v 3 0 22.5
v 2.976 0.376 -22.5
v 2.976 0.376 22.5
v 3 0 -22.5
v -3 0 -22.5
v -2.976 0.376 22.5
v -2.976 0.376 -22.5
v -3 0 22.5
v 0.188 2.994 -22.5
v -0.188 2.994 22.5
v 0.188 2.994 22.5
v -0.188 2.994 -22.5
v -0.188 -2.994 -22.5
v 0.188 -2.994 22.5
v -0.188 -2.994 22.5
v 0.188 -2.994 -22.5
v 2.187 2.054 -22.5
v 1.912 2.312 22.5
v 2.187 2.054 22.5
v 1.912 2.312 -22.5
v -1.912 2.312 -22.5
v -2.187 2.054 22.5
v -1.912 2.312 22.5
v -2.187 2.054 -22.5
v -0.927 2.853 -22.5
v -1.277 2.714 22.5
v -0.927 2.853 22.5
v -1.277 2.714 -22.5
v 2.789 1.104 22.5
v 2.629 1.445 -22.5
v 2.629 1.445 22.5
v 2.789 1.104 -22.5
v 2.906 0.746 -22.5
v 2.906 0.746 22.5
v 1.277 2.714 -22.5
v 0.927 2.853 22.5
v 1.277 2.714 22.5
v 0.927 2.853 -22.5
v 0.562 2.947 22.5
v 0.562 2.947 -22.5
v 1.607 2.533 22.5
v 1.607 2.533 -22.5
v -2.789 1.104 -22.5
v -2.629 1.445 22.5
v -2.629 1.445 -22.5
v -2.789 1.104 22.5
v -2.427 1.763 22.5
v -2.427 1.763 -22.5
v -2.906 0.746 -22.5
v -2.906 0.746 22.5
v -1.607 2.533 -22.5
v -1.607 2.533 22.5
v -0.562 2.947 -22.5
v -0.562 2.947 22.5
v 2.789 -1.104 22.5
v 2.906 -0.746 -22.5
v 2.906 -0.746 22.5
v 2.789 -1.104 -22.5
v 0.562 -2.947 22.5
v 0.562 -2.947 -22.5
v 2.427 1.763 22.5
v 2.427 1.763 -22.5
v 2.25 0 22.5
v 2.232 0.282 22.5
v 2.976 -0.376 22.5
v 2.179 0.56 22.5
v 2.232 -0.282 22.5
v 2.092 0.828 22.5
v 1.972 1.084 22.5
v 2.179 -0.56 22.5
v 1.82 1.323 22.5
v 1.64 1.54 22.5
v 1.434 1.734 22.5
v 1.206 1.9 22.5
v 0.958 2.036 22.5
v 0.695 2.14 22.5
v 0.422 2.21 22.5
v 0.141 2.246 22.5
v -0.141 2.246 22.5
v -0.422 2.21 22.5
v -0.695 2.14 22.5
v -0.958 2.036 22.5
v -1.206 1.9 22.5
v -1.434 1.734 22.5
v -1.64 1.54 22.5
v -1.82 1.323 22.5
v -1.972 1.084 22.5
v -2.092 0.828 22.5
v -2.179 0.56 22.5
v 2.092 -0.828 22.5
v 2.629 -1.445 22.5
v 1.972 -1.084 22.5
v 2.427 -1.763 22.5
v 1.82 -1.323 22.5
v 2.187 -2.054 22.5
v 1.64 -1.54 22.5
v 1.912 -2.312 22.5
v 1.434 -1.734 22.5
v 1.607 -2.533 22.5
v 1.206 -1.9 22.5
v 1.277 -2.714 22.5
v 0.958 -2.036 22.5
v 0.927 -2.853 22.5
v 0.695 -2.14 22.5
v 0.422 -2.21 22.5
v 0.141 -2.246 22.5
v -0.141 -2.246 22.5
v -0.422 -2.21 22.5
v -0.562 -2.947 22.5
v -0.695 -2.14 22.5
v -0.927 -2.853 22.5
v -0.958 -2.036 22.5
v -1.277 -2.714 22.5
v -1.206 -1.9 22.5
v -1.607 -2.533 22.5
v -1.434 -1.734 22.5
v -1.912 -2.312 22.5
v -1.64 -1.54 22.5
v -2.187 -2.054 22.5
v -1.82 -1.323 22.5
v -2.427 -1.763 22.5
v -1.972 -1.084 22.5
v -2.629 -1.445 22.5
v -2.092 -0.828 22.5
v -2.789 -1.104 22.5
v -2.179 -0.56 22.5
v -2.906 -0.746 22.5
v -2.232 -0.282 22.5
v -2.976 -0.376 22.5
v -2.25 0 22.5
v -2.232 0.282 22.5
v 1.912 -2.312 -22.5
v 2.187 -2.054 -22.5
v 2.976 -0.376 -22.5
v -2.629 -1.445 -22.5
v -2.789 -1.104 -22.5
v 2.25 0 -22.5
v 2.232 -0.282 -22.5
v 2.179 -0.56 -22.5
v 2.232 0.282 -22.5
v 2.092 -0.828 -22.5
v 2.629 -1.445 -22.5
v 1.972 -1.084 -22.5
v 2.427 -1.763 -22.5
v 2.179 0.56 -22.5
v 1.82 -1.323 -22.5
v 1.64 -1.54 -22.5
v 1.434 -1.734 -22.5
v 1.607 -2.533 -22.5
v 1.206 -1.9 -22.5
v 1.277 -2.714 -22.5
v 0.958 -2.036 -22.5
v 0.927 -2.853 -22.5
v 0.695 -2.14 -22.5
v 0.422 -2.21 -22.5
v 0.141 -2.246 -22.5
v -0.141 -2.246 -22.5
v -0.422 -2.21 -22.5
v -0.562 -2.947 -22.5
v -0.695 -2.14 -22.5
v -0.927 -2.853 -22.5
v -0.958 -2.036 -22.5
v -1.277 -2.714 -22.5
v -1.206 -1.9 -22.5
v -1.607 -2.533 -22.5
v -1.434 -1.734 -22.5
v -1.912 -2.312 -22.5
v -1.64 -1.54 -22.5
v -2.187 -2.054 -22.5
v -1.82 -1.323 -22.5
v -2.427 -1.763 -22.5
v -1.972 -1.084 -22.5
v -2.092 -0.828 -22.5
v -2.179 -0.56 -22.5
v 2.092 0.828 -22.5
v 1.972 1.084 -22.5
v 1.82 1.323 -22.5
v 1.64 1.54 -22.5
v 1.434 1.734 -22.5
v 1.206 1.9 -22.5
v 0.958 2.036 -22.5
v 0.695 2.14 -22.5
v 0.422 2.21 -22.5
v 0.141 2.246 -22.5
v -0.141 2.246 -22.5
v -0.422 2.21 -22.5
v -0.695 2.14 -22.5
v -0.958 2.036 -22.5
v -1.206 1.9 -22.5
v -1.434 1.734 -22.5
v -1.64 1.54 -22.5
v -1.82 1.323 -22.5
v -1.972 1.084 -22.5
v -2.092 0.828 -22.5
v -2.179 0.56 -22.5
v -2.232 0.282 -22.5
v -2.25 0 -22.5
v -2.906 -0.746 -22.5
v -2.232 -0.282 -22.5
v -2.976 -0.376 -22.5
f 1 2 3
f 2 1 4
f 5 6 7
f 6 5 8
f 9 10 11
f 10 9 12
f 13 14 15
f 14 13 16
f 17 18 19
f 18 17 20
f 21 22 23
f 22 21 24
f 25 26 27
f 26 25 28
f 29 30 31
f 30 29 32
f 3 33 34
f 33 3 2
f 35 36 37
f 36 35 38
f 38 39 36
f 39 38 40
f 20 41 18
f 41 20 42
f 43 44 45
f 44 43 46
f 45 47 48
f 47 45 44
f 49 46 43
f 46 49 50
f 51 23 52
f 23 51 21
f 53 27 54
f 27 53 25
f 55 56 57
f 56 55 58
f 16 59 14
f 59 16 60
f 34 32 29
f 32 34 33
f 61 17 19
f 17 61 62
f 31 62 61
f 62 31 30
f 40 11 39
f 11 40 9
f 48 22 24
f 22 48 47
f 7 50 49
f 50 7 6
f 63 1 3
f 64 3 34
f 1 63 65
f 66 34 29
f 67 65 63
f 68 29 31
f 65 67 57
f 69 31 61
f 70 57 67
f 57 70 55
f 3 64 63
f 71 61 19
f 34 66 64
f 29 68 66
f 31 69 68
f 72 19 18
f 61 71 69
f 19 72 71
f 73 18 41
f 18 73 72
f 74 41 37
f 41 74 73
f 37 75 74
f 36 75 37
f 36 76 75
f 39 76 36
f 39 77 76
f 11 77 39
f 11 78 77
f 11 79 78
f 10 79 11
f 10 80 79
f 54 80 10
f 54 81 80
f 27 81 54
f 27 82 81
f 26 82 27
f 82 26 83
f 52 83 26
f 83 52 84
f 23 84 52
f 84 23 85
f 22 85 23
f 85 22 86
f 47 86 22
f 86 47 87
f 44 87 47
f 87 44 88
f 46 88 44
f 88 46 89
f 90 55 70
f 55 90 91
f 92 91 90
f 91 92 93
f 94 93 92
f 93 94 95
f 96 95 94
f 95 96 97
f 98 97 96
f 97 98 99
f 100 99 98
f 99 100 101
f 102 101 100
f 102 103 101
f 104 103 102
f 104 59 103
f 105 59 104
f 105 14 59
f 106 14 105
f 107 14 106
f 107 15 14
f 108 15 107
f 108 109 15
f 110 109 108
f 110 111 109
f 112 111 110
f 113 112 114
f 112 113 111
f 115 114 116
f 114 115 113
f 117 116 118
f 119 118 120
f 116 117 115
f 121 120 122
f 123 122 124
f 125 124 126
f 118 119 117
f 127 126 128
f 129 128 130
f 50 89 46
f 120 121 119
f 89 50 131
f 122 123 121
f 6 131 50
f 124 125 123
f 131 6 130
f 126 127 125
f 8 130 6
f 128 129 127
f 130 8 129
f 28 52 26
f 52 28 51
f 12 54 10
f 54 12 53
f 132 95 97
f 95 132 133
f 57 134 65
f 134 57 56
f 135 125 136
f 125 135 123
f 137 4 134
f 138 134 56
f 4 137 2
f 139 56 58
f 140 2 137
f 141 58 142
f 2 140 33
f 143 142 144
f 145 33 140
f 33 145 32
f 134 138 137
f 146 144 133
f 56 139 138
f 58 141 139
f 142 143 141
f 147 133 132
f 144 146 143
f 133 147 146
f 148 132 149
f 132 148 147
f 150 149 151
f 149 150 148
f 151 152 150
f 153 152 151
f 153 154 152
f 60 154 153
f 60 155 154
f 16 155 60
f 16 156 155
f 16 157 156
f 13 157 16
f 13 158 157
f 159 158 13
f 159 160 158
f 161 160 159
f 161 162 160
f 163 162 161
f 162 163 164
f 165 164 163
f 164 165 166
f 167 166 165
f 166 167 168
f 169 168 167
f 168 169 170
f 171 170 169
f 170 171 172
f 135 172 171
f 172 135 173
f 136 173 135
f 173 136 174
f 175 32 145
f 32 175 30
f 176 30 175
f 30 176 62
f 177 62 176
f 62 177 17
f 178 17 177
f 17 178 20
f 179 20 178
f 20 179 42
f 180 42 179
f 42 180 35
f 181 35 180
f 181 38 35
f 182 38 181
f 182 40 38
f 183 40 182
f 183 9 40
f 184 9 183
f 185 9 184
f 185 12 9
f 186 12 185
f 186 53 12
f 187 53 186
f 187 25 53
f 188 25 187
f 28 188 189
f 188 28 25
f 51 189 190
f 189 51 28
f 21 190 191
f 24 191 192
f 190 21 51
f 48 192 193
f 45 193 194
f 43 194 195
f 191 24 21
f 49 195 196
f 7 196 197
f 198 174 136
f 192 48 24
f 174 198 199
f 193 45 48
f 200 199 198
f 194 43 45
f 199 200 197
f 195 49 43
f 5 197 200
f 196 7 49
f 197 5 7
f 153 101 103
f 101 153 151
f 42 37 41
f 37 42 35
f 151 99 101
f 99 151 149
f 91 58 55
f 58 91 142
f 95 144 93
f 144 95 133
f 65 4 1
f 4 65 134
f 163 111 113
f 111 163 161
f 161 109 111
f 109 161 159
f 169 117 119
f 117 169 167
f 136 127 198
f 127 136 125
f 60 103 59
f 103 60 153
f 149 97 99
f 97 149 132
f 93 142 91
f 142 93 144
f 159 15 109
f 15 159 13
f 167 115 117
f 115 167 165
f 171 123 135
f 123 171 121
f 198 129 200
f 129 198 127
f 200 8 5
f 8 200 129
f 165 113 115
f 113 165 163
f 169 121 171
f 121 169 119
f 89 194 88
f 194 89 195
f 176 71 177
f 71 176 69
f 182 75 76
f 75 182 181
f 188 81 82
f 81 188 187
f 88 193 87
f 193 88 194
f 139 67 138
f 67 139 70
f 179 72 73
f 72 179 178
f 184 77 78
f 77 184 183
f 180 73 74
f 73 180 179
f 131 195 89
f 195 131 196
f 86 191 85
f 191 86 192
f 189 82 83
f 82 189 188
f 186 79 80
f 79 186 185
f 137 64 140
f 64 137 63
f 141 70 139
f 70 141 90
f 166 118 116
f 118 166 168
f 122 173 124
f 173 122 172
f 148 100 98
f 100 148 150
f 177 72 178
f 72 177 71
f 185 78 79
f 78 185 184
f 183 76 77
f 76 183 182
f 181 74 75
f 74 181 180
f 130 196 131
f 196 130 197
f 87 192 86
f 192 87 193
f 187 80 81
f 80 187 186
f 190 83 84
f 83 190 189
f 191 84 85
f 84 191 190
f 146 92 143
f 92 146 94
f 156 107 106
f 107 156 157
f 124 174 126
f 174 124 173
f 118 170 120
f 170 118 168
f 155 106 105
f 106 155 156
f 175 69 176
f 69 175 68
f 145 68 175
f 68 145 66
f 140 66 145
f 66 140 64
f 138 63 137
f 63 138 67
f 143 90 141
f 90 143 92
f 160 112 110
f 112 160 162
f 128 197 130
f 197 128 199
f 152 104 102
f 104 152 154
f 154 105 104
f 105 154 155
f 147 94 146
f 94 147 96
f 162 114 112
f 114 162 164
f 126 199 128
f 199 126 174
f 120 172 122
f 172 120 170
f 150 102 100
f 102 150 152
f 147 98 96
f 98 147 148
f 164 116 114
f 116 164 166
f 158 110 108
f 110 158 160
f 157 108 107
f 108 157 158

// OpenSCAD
$fn = 50;


difference() {
	union() {
		translate(v = [0, 0, -22.5000000000]) {
			cylinder(h = 45, r = 3.0000000000);
		}
	}
	union() {
		translate(v = [0, 0, -100.0000000000]) {
			cylinder(h = 200, r = 2.2500000000);
		}
	}
}
